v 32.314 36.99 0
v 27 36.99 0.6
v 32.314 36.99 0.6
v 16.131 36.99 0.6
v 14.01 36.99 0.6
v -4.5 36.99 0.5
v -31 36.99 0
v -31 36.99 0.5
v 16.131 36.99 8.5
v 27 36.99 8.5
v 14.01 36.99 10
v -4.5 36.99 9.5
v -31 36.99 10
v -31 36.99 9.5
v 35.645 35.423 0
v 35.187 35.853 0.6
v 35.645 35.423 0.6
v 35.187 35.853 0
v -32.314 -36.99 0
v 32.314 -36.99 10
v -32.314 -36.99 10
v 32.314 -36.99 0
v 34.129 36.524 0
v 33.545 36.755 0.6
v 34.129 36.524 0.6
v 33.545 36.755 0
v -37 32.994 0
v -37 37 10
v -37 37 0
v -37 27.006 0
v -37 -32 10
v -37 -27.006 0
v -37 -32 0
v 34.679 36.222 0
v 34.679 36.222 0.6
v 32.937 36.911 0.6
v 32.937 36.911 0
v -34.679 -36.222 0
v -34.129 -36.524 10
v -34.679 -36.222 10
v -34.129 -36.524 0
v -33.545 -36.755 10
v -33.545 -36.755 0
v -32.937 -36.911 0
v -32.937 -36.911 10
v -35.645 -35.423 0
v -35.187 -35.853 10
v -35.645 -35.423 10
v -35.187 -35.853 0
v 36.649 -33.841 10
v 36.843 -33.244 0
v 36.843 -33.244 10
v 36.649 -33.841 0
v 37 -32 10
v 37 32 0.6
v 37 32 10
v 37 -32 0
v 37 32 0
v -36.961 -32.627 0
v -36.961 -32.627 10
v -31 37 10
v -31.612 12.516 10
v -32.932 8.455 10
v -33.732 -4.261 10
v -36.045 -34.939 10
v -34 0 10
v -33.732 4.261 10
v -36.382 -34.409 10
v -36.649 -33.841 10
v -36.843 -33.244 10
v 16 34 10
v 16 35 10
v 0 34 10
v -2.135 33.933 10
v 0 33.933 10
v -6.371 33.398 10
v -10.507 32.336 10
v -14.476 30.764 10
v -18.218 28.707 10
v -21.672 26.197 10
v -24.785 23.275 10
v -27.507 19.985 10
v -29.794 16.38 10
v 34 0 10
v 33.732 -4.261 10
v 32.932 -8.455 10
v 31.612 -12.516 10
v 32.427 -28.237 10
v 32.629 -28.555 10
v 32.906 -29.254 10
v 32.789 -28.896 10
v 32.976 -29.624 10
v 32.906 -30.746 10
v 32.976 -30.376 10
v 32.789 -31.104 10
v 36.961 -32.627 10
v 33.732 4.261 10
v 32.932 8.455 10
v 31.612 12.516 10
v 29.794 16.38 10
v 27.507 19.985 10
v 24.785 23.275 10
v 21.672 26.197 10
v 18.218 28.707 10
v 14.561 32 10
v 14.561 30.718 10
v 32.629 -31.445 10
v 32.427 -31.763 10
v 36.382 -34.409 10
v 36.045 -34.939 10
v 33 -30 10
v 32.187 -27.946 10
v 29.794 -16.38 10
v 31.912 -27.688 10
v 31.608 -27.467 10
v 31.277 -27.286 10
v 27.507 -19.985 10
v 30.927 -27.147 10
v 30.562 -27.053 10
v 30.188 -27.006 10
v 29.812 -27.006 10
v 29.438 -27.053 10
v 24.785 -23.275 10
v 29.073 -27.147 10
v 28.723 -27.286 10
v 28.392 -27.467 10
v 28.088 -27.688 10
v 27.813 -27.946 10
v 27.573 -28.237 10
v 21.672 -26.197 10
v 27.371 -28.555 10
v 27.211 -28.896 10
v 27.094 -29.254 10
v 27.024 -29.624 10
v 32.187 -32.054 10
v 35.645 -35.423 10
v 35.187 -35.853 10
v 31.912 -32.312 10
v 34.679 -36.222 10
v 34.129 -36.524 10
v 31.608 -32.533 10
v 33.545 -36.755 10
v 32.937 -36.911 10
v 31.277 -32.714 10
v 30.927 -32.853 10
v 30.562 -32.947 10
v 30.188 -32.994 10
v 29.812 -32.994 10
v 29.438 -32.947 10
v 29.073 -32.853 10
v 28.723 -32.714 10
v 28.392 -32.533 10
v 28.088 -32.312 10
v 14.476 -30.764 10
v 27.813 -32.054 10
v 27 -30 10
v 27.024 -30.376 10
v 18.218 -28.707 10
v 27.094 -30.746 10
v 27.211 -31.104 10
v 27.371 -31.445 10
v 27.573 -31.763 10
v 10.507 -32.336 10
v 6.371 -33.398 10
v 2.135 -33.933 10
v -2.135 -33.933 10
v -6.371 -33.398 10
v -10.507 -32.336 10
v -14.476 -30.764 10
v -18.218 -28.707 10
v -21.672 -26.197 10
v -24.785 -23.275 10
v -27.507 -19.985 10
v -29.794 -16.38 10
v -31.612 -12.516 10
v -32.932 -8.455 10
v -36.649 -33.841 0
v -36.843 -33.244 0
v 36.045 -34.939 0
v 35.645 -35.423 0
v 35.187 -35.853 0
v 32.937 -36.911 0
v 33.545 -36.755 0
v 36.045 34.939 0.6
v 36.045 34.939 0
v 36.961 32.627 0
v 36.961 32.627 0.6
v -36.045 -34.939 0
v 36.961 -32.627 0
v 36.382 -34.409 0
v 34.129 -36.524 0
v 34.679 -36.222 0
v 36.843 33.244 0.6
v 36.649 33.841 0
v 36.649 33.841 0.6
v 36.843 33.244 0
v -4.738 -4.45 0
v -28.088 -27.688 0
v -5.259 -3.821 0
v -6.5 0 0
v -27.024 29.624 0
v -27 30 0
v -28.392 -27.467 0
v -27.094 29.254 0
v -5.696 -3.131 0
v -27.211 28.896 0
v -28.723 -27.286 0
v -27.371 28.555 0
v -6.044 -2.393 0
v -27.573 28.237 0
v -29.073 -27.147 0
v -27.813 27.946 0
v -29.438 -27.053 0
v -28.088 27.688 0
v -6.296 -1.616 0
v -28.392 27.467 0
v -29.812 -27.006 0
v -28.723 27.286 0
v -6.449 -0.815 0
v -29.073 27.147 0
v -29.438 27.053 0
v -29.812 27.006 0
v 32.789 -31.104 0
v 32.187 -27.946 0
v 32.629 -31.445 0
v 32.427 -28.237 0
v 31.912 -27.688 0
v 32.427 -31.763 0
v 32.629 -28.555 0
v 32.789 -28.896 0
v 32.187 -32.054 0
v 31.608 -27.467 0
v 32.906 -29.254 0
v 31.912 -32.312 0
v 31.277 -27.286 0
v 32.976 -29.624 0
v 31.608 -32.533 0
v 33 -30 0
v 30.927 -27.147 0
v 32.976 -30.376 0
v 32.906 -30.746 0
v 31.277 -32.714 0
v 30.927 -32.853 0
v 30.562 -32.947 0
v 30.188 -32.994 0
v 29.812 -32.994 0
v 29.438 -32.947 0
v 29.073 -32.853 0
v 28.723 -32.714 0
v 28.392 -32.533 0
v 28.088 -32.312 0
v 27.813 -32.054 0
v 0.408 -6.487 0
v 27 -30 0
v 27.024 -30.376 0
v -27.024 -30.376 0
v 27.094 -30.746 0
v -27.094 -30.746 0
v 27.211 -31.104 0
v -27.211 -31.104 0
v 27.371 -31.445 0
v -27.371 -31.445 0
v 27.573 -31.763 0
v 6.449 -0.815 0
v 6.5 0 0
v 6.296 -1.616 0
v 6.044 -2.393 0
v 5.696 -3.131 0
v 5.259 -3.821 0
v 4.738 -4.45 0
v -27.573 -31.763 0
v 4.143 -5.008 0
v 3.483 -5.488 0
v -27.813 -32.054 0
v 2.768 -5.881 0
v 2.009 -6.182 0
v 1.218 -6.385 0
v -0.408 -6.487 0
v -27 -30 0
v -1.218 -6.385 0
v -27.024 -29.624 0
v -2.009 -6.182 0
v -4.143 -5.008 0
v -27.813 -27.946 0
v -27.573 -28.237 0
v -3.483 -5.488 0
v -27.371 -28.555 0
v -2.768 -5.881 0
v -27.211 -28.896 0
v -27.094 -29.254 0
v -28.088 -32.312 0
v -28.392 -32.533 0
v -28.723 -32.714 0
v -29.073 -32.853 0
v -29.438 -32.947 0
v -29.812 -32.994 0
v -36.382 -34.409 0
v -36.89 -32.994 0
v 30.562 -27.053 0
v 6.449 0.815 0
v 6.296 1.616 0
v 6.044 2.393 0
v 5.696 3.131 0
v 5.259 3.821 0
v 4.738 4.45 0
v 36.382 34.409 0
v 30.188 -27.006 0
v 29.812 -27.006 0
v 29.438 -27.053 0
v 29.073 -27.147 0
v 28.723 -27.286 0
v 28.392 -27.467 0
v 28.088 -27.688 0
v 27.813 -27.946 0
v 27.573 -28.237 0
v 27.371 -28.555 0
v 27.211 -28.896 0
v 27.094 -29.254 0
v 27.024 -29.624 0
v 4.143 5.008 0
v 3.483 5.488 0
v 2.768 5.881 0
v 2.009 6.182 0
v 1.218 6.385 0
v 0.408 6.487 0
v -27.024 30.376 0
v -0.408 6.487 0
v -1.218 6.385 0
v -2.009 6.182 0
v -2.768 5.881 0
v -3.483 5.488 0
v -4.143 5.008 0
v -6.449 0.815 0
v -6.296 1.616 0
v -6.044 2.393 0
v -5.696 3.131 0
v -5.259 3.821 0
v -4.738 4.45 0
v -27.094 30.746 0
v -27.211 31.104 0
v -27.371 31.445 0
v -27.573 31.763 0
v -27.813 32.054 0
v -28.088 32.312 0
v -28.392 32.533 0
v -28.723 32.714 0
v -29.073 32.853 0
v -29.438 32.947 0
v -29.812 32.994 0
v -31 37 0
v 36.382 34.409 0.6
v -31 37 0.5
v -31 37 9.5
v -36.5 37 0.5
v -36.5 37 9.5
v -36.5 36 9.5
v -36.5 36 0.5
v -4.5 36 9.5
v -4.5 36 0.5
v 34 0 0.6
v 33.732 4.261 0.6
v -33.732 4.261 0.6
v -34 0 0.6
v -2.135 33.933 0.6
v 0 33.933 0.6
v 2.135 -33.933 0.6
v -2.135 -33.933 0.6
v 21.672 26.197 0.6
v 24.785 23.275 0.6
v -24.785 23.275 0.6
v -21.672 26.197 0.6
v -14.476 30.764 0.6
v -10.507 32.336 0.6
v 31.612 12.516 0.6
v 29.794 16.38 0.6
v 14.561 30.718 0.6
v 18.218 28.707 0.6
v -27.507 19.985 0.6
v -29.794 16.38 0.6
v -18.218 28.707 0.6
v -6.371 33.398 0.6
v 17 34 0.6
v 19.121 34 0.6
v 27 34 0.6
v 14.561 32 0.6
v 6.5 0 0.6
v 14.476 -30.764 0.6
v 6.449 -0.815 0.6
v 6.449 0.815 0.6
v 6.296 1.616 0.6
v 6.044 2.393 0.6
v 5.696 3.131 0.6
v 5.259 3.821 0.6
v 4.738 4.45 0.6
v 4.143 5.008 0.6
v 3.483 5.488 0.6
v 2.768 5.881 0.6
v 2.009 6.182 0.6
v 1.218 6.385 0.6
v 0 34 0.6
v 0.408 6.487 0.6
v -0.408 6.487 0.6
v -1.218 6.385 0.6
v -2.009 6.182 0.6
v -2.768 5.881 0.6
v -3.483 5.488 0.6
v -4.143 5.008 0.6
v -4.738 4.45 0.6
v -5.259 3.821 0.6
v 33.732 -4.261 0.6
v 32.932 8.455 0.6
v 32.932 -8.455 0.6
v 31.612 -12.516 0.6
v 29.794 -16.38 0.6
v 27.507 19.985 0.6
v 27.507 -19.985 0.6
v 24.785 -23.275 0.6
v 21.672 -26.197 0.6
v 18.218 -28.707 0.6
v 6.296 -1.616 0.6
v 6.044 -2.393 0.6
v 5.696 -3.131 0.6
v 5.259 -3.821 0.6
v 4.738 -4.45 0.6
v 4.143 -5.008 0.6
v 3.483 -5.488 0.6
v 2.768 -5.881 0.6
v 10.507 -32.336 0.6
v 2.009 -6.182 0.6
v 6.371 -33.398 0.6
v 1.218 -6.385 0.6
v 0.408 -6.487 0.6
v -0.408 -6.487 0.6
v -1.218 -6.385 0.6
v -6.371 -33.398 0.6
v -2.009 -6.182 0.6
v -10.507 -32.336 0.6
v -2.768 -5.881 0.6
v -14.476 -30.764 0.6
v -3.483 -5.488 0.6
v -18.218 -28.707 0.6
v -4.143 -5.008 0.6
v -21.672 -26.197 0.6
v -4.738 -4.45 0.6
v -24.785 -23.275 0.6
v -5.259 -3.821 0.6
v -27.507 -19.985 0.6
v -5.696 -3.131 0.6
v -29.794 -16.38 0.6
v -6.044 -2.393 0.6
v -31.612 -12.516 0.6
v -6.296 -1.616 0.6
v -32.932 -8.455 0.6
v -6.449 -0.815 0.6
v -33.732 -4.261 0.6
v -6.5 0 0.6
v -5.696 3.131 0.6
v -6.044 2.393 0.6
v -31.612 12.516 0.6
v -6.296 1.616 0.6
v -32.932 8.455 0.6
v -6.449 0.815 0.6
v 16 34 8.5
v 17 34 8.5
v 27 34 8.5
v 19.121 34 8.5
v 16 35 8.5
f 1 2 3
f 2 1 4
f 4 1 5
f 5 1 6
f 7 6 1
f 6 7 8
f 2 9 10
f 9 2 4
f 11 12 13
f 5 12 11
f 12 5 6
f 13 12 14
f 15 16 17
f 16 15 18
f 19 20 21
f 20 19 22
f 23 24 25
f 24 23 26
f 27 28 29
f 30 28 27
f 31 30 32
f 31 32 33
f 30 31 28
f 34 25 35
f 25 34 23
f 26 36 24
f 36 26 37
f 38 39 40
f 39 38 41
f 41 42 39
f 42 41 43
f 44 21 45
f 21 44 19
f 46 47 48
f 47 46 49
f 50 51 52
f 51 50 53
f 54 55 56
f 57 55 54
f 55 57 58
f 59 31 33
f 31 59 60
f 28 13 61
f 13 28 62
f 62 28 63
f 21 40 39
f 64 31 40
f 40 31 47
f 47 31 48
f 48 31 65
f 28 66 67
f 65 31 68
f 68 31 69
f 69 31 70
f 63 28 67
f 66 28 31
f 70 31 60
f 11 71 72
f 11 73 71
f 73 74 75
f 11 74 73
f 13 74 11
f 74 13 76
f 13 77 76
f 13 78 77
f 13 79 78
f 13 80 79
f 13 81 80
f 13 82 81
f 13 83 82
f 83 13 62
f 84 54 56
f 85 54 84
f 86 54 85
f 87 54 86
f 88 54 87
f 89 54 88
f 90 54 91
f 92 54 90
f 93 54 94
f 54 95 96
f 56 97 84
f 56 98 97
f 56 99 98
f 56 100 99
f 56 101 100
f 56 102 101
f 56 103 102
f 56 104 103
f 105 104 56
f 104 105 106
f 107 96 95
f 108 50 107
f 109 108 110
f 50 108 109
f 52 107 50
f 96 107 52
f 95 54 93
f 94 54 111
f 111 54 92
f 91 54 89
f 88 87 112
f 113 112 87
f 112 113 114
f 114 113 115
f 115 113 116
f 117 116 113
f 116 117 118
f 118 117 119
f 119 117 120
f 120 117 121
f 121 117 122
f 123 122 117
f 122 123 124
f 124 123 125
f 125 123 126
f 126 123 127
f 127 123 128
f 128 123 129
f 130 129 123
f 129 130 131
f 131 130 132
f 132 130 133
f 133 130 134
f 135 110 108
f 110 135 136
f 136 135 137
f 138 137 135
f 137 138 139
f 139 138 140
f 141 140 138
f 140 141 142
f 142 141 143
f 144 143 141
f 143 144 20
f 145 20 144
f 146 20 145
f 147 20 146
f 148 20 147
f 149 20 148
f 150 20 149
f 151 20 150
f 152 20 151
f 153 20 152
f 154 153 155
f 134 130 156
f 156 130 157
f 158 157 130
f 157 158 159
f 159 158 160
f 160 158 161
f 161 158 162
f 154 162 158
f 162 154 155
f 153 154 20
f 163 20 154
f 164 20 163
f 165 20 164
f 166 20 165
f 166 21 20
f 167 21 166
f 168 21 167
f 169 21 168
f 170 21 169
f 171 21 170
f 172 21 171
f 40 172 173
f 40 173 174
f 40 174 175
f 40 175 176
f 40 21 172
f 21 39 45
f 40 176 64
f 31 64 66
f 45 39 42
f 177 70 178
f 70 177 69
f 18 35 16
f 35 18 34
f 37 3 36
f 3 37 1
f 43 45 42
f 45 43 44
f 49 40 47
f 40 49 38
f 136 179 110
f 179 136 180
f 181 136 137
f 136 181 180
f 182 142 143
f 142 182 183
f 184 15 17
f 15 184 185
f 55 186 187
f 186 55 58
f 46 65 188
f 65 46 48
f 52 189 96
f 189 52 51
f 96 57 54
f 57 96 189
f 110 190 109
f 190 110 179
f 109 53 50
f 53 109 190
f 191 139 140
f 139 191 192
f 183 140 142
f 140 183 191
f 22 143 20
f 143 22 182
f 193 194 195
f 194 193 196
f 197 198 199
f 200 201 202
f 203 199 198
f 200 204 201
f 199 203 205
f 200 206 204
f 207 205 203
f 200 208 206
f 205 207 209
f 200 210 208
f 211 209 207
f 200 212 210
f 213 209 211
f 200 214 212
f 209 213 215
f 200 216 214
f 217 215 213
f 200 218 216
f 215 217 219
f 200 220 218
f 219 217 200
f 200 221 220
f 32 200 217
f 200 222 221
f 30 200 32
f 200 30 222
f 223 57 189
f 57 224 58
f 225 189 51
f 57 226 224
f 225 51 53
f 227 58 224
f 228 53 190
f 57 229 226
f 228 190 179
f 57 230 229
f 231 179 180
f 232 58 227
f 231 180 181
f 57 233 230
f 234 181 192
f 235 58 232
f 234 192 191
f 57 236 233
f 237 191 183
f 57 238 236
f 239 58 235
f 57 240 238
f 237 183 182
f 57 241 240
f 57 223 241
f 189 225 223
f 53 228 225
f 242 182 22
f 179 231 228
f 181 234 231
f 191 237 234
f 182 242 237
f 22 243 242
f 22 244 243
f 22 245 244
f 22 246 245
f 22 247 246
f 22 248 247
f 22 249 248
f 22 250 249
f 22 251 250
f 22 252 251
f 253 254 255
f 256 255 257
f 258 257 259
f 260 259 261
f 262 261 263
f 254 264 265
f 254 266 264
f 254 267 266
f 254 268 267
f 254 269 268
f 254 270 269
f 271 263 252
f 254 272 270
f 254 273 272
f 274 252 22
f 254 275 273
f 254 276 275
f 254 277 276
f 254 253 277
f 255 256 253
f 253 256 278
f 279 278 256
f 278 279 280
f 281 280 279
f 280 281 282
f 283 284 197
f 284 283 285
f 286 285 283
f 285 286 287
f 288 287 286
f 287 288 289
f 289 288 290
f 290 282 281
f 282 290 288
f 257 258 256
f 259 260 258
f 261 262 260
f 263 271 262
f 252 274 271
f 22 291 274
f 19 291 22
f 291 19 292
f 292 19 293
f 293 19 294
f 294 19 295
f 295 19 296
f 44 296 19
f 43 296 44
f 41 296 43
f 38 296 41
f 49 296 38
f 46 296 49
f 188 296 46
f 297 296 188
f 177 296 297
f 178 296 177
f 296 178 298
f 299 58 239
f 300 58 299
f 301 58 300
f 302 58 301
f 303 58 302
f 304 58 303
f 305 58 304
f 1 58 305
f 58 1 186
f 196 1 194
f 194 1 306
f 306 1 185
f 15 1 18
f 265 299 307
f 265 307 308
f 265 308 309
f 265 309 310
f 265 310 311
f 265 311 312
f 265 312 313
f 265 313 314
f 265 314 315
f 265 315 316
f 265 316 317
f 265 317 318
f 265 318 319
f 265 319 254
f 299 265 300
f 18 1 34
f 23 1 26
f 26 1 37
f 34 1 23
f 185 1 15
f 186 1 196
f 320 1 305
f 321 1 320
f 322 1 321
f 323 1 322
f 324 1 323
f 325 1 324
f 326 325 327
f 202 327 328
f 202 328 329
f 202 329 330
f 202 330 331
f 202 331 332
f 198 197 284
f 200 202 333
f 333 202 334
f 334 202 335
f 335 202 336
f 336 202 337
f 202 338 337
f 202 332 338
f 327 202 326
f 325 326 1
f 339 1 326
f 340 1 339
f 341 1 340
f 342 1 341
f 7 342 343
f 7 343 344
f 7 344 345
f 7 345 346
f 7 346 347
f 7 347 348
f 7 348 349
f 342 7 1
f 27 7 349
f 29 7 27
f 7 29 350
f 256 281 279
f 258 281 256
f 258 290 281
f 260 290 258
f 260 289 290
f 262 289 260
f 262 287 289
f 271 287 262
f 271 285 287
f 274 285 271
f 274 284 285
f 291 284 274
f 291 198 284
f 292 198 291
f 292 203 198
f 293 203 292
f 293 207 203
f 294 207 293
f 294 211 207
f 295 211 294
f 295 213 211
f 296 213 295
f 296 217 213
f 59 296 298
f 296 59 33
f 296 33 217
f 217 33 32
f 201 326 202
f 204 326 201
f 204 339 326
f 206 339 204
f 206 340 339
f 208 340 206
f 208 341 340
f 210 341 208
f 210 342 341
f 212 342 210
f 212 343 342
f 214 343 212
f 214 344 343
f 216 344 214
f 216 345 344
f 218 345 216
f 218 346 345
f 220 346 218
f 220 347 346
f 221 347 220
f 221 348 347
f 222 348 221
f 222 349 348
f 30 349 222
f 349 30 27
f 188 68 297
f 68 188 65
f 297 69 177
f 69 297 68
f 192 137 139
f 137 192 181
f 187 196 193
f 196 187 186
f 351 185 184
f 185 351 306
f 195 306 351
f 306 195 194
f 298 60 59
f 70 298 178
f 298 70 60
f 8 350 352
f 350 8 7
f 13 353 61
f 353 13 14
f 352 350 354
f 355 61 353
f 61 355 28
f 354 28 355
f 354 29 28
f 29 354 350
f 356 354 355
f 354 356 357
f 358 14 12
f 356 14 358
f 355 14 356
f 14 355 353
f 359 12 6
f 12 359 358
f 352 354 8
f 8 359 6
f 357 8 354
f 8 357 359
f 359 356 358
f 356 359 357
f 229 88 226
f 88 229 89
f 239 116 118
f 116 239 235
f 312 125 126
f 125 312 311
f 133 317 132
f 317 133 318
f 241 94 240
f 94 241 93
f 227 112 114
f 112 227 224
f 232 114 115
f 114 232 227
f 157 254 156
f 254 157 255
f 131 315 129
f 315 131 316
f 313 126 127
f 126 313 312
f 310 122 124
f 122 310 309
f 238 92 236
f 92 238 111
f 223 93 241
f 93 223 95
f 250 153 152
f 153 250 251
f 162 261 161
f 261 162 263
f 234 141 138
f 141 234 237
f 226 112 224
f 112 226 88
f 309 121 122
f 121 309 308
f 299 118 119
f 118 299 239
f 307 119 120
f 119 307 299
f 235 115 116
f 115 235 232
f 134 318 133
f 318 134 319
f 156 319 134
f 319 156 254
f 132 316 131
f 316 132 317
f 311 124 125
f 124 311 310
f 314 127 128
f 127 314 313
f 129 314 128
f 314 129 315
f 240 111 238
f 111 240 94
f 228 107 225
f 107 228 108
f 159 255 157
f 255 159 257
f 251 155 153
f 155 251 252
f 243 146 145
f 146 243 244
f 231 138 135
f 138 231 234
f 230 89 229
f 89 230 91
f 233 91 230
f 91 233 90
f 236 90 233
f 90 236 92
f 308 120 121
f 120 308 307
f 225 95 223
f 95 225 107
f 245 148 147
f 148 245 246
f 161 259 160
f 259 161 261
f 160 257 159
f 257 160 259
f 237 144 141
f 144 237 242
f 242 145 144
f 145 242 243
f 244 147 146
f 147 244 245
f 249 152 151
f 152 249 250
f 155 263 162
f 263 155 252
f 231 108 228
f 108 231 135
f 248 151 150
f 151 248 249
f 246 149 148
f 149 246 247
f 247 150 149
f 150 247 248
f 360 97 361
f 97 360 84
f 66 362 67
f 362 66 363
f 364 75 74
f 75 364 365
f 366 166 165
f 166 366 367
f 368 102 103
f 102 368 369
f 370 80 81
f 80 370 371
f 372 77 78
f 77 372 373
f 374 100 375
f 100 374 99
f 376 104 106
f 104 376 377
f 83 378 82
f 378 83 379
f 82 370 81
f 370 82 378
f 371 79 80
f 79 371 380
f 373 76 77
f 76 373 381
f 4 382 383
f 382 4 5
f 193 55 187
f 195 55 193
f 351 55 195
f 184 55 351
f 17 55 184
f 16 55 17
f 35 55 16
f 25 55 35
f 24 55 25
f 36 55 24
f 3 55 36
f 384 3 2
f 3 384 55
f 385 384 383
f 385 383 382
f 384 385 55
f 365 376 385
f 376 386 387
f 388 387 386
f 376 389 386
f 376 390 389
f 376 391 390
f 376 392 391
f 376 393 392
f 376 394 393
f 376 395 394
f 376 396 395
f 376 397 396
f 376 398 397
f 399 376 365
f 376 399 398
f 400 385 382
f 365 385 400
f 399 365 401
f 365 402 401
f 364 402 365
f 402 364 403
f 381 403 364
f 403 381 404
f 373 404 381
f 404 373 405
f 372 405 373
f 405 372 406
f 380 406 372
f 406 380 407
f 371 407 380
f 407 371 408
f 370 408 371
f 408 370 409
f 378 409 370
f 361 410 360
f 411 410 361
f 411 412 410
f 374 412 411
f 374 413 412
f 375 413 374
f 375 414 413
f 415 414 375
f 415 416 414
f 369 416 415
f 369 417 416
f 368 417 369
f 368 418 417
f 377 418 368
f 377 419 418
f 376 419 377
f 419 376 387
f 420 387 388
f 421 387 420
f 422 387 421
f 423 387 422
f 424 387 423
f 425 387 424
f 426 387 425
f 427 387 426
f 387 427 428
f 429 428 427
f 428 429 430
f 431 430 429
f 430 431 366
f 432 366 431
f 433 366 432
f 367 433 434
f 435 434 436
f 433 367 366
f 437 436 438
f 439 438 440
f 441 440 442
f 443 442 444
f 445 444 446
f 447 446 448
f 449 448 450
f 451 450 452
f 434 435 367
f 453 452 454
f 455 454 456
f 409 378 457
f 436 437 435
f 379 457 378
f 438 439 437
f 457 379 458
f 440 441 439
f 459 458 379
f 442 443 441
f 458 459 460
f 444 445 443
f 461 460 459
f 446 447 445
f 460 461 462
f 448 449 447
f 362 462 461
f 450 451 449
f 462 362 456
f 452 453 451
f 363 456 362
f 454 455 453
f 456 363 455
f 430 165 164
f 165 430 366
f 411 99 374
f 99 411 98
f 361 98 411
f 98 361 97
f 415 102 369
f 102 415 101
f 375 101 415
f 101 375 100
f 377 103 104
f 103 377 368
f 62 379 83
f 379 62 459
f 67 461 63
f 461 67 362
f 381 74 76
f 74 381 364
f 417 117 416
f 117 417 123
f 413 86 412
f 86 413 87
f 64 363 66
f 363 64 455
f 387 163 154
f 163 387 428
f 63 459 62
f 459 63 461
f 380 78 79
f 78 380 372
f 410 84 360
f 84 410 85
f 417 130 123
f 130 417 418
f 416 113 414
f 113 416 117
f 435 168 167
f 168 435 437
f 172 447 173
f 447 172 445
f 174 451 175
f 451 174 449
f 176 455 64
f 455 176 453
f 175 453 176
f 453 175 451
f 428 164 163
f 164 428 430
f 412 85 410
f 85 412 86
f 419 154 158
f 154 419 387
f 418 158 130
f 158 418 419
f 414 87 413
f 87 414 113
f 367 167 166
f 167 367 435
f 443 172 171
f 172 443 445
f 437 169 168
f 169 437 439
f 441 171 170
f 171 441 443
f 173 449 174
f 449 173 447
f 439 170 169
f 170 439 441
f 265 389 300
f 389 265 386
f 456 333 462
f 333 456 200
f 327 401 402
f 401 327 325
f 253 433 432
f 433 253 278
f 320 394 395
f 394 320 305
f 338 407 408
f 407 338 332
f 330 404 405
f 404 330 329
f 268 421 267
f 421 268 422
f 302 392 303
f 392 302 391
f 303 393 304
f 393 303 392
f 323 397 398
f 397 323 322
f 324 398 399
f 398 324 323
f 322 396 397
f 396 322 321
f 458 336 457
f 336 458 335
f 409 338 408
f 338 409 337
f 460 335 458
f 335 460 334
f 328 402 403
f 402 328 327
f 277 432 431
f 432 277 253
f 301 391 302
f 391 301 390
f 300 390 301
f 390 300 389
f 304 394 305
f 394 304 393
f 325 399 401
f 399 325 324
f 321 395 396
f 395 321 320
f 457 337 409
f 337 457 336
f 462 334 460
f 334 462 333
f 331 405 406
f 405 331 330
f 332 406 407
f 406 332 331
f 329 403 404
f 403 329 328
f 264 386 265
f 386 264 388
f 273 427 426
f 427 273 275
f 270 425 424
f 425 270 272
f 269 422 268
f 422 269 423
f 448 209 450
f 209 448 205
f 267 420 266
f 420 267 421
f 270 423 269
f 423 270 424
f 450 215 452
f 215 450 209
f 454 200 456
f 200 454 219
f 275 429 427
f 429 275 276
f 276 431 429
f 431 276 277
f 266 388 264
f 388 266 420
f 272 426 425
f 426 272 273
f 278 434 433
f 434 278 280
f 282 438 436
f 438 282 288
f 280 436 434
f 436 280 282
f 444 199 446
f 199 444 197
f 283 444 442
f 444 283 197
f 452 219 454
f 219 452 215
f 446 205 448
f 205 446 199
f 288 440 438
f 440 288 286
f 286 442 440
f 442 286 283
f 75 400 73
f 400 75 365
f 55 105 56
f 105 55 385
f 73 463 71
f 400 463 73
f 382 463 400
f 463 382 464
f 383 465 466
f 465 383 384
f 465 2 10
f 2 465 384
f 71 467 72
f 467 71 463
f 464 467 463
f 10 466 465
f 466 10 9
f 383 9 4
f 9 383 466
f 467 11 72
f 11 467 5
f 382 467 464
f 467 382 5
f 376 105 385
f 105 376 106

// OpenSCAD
$fn = 50;


difference() {
	union() {
		hull() {
			translate(v = [-32.0000000000, 32.0000000000, 0]) {
				cylinder(h = 10, r = 5);
			}
			translate(v = [32.0000000000, 32.0000000000, 0]) {
				cylinder(h = 10, r = 5);
			}
			translate(v = [-32.0000000000, -32.0000000000, 0]) {
				cylinder(h = 10, r = 5);
			}
			translate(v = [32.0000000000, -32.0000000000, 0]) {
				cylinder(h = 10, r = 5);
			}
		}
		translate(v = [-37.0000000000, 31.0000000000, 0]) {
			cube(size = [6, 6, 10]);
		}
	}
	union() {
		translate(v = [-37.5000000000, -30.0000000000, -250.0000000000]) {
			rotate(a = [0, 0, 0]) {
				difference() {
					union() {
						hull() {
							translate(v = [7.5000000000, 0, 0]) {
								cylinder(h = 250, r = 3.0000000000, r1 = 3.0000000000, r2 = 3.0000000000);
							}
							translate(v = [-7.5000000000, 0, 0]) {
								cylinder(h = 250, r = 3.0000000000, r1 = 3.0000000000, r2 = 3.0000000000);
							}
						}
					}
					union();
				}
			}
		}
		translate(v = [-37.5000000000, 30.0000000000, -250.0000000000]) {
			rotate(a = [0, 0, 0]) {
				difference() {
					union() {
						hull() {
							translate(v = [7.5000000000, 0, 0]) {
								cylinder(h = 250, r = 3.0000000000, r1 = 3.0000000000, r2 = 3.0000000000);
							}
							translate(v = [-7.5000000000, 0, 0]) {
								cylinder(h = 250, r = 3.0000000000, r1 = 3.0000000000, r2 = 3.0000000000);
							}
						}
					}
					union();
				}
			}
		}
		translate(v = [-36.5000000000, 36.0000000000, 0.5000000000]) {
			cube(size = [32, 1, 9.0000000000]);
		}
		translate(v = [30.0000000000, -30.0000000000, -50.0000000000]) {
			cylinder(h = 100, r = 3.0000000000);
		}
		translate(v = [0, 0, 0.6000000000]) {
			cylinder(h = 12.4000000000, r = 34.0000000000);
		}
		translate(v = [0, 0, -5.0000000000]) {
			cylinder(h = 10, r = 6.5000000000);
		}
		translate(v = [0.0000000000, 32.0000000000, 0.6000000000]) {
			cube(size = [37.0000000000, 2, 12.4000000000]);
		}
		translate(v = [27.0000000000, 32.0000000000, 0.6000000000]) {
			cube(size = [10, 5, 12.4000000000]);
		}
		translate(v = [16.0000000000, 32.0000000000, 8.5000000000]) {
			cube(size = [21, 5, 1.5000000000]);
		}
		translate(v = [13.2500000000, 37.7500000000, 0.6000000000]) {
			rotate(a = [0, 0, -45]) {
				cube(size = [7.5000000000, 1.5000000000, 12.4000000000]);
			}
		}
		translate(v = [7.0610000000, 30.0000000000, 0.6000000000]) {
			cube(size = [7.5000000000, 2, 9.4000000000]);
		}
	}
}
